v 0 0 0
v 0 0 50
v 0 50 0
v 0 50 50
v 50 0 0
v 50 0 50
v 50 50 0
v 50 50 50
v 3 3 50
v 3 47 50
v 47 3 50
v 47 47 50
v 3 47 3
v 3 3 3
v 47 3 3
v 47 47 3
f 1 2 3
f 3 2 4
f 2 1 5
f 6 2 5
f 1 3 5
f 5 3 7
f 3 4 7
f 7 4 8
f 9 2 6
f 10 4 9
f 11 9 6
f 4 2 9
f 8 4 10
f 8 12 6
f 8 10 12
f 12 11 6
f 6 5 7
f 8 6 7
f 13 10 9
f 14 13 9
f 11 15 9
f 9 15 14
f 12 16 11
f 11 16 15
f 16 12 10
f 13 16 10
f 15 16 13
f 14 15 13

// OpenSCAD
difference(){
      cube([50,50,50]);
      translate([3,3,3]){cube([44,44,50]);}
}
